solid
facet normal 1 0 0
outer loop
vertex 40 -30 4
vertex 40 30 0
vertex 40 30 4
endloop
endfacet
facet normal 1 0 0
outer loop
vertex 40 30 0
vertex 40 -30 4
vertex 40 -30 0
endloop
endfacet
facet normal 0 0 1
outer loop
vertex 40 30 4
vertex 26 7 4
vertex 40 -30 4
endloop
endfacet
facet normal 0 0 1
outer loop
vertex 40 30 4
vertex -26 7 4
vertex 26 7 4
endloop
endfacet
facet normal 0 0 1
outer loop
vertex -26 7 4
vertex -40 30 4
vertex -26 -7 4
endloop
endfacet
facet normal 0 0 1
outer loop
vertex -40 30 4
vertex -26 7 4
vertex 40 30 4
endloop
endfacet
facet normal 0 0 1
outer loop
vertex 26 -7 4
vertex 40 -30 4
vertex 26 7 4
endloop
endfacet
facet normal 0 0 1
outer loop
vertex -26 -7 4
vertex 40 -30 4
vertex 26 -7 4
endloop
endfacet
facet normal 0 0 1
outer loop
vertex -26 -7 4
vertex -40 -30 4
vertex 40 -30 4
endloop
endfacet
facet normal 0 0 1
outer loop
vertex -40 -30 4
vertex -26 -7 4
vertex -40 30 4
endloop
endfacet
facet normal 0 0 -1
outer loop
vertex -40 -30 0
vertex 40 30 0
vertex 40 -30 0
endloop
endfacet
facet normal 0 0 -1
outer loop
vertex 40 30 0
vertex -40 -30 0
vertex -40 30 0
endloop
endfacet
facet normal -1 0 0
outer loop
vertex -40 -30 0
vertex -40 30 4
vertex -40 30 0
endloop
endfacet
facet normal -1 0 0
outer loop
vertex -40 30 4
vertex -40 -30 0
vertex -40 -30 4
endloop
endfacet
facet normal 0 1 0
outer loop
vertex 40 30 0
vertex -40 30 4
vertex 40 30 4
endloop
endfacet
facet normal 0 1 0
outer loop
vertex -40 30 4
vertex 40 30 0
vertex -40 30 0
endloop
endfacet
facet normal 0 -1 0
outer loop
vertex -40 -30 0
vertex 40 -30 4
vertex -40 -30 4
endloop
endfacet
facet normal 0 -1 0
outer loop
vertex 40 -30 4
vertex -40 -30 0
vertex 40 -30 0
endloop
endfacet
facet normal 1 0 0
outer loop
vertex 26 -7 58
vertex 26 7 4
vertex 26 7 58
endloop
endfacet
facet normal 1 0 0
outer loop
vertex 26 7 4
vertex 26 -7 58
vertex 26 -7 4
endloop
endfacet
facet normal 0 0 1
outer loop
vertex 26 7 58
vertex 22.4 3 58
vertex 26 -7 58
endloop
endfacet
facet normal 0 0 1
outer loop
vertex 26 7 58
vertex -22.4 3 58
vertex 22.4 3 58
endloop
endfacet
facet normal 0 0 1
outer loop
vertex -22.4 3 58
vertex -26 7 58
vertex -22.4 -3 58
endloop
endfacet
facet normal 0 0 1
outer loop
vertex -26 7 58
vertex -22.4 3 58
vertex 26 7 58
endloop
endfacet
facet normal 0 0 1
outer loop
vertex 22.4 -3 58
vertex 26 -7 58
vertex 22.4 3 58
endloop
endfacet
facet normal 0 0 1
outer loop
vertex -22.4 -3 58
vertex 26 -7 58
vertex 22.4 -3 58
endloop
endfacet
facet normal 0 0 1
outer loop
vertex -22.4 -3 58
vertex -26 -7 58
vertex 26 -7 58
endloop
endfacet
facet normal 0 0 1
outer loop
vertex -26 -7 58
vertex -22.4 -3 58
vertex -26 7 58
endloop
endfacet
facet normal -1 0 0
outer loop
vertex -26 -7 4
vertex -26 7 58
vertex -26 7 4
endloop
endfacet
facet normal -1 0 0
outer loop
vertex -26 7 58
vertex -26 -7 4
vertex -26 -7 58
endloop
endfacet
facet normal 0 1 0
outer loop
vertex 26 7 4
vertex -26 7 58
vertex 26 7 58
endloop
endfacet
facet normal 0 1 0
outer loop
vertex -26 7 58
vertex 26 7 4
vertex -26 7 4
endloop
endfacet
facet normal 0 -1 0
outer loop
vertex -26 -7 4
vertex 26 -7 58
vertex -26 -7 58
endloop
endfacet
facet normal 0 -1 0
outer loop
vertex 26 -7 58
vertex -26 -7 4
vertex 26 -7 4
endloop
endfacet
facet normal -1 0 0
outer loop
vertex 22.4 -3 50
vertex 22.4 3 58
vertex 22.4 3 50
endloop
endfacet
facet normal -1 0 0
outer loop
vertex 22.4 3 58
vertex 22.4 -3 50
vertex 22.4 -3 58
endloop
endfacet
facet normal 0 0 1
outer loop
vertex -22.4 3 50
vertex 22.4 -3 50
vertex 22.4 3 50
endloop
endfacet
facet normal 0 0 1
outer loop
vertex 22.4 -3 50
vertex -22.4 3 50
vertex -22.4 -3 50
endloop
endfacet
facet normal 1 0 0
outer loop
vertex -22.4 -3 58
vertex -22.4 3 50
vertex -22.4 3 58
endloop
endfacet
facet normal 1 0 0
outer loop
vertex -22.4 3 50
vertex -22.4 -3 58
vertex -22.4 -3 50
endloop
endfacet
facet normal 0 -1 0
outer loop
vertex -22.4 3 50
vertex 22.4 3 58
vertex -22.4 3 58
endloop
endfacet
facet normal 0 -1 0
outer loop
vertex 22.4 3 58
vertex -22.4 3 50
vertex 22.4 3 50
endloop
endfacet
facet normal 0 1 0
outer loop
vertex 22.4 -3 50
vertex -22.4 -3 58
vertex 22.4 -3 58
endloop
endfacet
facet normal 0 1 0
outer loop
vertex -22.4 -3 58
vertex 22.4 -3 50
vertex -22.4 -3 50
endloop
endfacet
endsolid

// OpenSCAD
// Leg test stand V2. Units mm. OpenSCAD 2021.01.
// V1 (owner print, 2026-11-27): the mount sat loose in the 4.3mm slot and leaned badly.
// The owner's mount plate thickness is not measured, so V2 does not guess it:
// the slot is wider and two small printed WEDGES are pushed in beside the plate, one at each
// end of the slot, to clamp it tight. They sit at the ends so they miss the servo body and the
// ear screws, which stick out of the plate just above the tower top.
// The wedge handles plates from about 2.2 to 4.7mm thick.
// part="stand" or part="wedge". Print both flat, no supports.
$fn=48;
part="stand";

plate_l=44;          // mount plate long edge (V4 design)
slot_w=6.0;          // plate + wedge
slot_depth=8;        // deeper would hit the servo body that sticks through the plate
wall=4;              // thicker walls than V1 so the slot does not spread
tower_h=58;          // same shaft height as V1 (about 65mm above the table)
base=[80,60,4];

wedge_h=14;          // 8 in the slot, 6 above it to grip and pull out
wedge_thin=0.8;      // bottom edge
wedge_thick=3.8;     // top edge
wedge_l=4.5;         // each wedge; goes in the slot ends, |x| from about 17.5 to 22

module stand() {
  difference() {
    union() {
      translate([-base[0]/2,-base[1]/2,0]) cube(base);
      translate([-(plate_l+2*wall)/2,-(slot_w+2*wall)/2,0]) cube([plate_l+2*wall,slot_w+2*wall,tower_h]);
    }
    translate([-(plate_l+0.8)/2,-slot_w/2,tower_h-slot_depth]) cube([plate_l+0.8,slot_w,slot_depth+.1]);
  }
}
// Lies flat on the bed: x = length, y = height (thin end at y=0), z = thickness.
module wedge() {
  rotate([90,0,0]) rotate([0,90,0])
    linear_extrude(wedge_l) polygon([[0,0],[wedge_h,0],[wedge_h,wedge_thick],[0,wedge_thin]]);
}

if(part=="stand") stand(); else wedge();   // print TWO wedges (set copies to 2 in the slicer)

assert(slot_w-wedge_thick>=2.0 && slot_w-wedge_thin<=5.4,"Wedge covers plates about 2.2-4.7mm with printer shrink");
assert(tower_h-slot_depth+15-45-5>base[2]+8,"Foot clears the base");
